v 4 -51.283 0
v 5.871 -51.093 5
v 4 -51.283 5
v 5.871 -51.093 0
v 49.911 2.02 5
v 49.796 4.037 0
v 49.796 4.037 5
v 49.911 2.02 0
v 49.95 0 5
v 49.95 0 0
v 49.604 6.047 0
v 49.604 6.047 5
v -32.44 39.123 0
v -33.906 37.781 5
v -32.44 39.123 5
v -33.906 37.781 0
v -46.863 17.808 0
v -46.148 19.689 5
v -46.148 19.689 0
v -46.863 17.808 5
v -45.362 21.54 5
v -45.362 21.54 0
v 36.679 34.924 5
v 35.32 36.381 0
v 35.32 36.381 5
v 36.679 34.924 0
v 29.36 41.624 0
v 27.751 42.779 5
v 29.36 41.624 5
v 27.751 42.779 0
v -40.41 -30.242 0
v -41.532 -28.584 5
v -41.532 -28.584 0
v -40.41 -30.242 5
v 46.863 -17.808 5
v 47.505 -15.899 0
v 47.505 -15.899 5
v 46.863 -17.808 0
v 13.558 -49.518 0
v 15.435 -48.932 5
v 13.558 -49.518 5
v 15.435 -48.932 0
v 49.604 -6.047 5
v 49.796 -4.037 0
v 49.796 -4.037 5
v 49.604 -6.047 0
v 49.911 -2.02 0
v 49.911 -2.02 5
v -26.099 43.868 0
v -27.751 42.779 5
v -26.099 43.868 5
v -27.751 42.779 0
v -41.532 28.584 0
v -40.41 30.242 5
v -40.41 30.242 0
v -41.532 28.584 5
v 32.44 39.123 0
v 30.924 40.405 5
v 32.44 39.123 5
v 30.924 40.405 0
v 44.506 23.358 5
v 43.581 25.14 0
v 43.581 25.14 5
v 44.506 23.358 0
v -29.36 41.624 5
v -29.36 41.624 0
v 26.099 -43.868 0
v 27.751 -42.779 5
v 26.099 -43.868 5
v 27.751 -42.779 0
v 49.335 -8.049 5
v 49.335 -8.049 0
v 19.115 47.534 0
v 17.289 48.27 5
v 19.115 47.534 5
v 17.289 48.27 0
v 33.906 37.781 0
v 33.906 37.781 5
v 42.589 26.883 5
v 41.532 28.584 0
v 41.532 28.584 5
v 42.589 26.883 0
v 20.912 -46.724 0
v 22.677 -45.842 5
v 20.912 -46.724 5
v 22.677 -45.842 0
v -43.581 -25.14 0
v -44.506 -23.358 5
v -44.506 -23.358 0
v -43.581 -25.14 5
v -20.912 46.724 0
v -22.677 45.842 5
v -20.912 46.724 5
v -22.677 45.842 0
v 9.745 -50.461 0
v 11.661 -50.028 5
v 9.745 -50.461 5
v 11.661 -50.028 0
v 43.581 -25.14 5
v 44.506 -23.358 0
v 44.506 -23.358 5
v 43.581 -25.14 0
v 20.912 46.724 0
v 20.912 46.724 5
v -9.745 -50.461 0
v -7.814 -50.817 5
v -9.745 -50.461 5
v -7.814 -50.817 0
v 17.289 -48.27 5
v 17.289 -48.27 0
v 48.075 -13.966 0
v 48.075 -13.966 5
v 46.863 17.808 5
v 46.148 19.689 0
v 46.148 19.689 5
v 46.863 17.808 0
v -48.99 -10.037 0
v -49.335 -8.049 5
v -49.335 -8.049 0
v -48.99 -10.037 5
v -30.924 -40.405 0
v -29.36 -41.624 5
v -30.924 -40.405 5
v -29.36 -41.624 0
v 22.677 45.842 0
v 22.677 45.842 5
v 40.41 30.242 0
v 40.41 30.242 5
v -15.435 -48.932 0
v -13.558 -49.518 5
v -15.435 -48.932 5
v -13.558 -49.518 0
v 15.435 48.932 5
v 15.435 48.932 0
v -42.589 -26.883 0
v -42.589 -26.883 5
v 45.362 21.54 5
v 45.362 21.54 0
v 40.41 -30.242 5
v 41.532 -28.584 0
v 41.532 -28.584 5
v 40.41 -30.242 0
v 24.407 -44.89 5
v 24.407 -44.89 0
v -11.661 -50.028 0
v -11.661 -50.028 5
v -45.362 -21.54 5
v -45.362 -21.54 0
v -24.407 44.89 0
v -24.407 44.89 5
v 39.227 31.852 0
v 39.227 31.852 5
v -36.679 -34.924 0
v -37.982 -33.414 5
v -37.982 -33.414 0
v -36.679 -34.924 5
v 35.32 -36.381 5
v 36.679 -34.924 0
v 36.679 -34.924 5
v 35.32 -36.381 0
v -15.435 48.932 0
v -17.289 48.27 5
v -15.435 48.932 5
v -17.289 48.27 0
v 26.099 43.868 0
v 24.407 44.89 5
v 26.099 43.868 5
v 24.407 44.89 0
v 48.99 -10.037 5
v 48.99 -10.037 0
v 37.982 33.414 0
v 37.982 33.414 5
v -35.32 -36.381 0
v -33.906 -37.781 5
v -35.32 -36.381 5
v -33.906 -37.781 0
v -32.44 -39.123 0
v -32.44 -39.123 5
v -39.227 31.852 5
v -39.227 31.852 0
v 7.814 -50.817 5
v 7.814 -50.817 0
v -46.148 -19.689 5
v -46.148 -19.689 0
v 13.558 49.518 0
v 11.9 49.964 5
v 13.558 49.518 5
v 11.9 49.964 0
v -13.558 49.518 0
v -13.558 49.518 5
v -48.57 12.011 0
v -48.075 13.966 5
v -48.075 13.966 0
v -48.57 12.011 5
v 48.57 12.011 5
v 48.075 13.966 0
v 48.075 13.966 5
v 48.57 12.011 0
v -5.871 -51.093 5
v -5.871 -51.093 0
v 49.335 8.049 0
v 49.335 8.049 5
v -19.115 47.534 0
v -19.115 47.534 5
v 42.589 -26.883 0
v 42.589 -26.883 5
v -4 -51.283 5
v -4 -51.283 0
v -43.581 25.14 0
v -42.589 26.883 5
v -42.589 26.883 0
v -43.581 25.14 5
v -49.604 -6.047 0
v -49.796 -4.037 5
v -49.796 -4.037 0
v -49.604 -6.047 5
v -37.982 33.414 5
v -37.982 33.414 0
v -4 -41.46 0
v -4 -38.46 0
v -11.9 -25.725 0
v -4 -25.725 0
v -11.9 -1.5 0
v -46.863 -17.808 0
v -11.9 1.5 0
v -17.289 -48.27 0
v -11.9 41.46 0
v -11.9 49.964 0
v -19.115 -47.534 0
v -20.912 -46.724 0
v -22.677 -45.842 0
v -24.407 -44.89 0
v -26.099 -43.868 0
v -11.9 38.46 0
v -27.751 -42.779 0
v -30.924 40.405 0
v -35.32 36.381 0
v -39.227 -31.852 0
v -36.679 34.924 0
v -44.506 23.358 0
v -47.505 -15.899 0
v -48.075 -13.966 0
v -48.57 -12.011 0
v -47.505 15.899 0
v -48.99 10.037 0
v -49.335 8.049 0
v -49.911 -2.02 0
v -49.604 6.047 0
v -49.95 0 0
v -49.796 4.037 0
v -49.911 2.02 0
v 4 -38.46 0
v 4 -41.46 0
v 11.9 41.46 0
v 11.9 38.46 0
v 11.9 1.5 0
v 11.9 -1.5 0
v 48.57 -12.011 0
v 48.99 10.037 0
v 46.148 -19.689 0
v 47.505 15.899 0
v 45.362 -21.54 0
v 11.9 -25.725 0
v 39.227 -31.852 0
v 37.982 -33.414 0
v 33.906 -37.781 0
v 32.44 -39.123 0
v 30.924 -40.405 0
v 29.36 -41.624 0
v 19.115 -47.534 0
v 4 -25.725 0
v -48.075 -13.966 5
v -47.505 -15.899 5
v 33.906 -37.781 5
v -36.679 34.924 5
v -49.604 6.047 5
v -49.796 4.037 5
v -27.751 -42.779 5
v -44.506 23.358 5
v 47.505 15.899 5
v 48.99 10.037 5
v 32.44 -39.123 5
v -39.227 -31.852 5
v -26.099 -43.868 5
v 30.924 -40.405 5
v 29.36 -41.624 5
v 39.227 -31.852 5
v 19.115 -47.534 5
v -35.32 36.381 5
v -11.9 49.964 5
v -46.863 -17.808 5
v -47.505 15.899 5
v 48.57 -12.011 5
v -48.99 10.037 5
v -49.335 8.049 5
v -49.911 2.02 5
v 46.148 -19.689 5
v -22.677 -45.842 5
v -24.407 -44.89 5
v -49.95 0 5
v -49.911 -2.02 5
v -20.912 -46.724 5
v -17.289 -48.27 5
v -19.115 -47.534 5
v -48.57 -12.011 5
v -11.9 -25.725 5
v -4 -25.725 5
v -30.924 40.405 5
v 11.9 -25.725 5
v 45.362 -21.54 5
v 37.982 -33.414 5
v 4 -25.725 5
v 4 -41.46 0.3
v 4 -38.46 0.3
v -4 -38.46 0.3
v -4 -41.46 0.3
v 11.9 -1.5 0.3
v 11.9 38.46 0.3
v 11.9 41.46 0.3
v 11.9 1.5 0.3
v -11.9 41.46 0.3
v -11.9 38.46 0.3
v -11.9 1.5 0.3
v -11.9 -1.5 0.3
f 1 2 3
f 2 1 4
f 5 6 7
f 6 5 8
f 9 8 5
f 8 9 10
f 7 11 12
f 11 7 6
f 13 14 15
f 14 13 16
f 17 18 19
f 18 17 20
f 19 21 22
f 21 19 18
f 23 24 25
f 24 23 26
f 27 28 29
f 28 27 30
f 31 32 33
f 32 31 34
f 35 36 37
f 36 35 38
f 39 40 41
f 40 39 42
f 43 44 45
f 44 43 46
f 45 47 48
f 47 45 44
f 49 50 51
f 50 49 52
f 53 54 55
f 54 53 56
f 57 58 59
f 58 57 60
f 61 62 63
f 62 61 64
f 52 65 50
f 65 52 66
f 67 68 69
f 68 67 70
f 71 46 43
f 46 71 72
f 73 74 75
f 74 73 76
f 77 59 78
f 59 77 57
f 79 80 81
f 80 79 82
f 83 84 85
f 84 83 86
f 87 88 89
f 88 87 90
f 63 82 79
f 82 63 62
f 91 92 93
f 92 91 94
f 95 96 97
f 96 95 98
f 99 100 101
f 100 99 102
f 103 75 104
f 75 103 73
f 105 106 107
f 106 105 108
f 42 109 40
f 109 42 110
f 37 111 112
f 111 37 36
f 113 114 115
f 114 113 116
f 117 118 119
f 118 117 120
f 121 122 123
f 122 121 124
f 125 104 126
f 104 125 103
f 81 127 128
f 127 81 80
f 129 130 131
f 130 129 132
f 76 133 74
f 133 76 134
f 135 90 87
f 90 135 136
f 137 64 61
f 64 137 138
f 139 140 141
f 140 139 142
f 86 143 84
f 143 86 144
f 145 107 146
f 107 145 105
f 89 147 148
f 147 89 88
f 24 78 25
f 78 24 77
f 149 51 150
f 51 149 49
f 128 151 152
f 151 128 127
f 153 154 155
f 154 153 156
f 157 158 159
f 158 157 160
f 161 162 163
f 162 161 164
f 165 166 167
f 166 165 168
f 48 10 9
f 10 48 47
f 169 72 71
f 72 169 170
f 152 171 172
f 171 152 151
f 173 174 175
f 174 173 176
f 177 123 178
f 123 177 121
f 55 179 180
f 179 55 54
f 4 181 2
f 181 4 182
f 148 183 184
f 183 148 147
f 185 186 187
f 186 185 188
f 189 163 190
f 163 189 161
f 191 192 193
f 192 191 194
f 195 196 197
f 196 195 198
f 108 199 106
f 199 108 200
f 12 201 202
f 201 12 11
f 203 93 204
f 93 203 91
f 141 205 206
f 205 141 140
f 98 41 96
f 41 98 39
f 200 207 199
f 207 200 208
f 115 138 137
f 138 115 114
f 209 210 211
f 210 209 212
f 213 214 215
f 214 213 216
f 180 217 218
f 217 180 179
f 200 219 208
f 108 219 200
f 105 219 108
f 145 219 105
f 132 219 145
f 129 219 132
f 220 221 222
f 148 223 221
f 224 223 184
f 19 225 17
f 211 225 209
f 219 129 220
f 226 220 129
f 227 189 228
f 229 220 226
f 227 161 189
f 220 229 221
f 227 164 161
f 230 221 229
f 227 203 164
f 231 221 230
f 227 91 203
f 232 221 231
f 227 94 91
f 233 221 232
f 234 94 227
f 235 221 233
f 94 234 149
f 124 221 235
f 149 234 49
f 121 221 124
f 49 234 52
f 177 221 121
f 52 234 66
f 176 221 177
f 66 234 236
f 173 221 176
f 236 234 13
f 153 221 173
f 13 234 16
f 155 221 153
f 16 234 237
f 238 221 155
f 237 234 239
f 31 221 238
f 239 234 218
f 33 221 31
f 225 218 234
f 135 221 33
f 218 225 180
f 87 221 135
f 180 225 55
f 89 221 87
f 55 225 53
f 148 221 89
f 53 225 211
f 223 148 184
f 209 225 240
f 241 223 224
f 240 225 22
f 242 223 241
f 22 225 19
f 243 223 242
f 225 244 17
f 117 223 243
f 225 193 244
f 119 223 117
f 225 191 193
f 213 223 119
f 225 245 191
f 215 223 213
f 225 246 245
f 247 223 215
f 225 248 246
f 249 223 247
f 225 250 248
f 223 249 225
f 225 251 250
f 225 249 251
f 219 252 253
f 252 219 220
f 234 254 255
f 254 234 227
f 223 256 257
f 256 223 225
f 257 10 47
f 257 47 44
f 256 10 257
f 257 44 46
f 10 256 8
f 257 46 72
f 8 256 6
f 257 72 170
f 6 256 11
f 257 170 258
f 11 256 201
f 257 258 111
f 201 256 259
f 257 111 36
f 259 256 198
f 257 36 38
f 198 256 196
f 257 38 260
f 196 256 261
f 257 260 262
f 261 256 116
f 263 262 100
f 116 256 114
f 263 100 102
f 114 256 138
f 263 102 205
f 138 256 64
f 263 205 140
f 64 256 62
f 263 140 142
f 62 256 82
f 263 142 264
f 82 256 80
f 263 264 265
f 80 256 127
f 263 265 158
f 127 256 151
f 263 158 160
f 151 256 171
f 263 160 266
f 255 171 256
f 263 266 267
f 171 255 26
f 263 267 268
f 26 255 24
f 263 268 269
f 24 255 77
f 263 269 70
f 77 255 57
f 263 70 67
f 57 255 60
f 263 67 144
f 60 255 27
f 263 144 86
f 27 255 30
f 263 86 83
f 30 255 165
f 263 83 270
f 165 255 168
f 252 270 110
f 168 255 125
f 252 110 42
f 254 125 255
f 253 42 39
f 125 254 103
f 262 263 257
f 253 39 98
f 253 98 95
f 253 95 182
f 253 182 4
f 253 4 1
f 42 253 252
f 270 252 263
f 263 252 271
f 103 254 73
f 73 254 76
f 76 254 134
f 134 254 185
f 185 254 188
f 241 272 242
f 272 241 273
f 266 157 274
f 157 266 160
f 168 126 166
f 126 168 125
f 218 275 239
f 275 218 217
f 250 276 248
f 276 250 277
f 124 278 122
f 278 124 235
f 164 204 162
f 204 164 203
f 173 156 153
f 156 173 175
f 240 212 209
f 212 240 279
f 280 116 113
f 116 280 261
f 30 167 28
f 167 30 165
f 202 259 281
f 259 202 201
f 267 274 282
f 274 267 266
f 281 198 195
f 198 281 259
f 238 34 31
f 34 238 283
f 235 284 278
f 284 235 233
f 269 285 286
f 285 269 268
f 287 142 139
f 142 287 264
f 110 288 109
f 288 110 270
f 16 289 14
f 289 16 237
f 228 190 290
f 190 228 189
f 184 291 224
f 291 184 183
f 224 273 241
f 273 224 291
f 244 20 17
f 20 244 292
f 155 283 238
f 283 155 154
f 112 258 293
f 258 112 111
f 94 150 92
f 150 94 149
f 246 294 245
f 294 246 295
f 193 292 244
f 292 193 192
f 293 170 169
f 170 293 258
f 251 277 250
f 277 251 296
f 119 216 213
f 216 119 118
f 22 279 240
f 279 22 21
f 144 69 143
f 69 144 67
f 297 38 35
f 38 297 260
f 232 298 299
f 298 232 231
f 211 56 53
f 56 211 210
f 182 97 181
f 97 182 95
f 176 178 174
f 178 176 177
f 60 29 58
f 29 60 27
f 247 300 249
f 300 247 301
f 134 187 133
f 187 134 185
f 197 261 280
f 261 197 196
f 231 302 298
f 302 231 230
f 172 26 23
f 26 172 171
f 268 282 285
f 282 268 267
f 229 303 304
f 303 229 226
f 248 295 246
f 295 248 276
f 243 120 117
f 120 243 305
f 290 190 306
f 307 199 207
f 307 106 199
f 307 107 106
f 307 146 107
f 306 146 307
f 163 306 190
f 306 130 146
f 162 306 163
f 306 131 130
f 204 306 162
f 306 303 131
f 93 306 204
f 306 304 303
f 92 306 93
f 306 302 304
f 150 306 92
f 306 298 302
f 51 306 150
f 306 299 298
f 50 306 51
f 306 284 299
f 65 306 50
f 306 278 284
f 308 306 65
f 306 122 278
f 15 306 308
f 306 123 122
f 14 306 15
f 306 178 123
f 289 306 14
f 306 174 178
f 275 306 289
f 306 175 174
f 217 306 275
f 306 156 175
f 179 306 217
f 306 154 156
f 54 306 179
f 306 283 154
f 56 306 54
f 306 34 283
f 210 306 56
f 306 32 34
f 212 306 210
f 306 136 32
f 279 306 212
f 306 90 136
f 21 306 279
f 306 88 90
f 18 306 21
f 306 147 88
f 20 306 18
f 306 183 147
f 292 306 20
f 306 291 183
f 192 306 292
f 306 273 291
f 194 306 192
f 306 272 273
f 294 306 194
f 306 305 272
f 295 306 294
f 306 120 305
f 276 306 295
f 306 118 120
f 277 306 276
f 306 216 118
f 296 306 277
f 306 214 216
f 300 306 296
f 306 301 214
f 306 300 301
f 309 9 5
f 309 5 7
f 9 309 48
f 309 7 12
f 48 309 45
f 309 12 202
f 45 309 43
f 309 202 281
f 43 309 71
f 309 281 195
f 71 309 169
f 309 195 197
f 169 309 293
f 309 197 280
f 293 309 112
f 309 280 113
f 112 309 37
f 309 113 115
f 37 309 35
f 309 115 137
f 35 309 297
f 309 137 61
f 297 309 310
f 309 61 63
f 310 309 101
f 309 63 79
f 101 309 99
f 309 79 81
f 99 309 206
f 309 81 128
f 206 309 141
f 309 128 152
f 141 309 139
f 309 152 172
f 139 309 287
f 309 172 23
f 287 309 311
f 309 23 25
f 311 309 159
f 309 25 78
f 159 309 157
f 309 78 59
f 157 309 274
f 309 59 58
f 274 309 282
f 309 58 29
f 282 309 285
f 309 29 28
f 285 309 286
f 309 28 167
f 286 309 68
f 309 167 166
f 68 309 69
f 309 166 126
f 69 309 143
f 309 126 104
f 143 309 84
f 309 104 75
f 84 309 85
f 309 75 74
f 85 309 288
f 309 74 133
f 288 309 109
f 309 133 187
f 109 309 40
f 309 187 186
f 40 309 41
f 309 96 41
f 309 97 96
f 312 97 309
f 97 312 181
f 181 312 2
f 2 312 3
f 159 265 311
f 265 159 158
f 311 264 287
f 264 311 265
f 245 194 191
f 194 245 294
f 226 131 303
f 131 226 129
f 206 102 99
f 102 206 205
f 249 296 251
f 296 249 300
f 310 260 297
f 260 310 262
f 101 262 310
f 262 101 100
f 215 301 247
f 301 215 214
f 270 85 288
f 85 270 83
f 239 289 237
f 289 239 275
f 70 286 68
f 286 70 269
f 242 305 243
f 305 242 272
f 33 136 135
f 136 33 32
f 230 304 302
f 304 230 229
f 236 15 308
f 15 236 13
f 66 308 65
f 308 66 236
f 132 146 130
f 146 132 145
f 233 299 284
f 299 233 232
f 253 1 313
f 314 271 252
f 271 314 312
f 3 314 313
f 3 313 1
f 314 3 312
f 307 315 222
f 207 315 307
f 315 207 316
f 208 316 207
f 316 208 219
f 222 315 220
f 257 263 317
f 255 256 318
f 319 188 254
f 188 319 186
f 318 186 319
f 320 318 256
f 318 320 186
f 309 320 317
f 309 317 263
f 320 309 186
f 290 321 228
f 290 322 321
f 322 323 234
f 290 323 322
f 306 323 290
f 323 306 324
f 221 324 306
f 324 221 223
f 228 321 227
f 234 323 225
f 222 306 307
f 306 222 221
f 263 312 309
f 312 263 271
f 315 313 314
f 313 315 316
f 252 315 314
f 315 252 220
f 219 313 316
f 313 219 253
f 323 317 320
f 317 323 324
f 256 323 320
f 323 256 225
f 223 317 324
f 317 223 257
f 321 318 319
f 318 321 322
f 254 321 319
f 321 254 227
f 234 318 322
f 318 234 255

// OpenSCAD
WIDTH = /*             */ 100 -.1;
LENGTH = /*            */ 103 -.1;
HEIGHT = /*              */ 5;

FRONT_SLIT = /*         */ 6 + 2;
BACK_SLIT = /*          */ 21.3 + 2.5;

$fn = $preview ? 60 : 160;
ATOM = 0.01;
PLAY = .35;

module cylinder0(factor = 0, height = 0, l = LENGTH, w = WIDTH) {
    h = factor ? HEIGHT * factor : height;
    resize([ w, l, h ]) cylinder(d = 10, h = 1);
}

module base() {
    difference() {
        cylinder0(factor = 1);
        
        cube([ FRONT_SLIT, LENGTH, HEIGHT*3 ], center = true);

        translate([ 0, LENGTH / 4, 0])
        cube([ BACK_SLIT, LENGTH, HEIGHT*3 ], center = true);
    }
    
    for (k=[-.4, 0, .4])
        translate([-LENGTH/4, -1.5 + WIDTH*k, 0])
        cube([LENGTH/2, 3, .3]);
}

module concrete() {
    translate([ 0, 0, HEIGHT ])
    difference() {
        cylinder0(height = 96);

        // slanted top
        translate([ 0, LENGTH / 2, 96 ])
        rotate([ 38, 0, 0 ])
        translate([ 0, -LENGTH / 2, 0 ])
        cylinder(d = LENGTH * 4, h = 100);
    }
}

module stand_holder() {
    difference() {
        base();
//        channel();
    }
}

%concrete();
stand_holder();
